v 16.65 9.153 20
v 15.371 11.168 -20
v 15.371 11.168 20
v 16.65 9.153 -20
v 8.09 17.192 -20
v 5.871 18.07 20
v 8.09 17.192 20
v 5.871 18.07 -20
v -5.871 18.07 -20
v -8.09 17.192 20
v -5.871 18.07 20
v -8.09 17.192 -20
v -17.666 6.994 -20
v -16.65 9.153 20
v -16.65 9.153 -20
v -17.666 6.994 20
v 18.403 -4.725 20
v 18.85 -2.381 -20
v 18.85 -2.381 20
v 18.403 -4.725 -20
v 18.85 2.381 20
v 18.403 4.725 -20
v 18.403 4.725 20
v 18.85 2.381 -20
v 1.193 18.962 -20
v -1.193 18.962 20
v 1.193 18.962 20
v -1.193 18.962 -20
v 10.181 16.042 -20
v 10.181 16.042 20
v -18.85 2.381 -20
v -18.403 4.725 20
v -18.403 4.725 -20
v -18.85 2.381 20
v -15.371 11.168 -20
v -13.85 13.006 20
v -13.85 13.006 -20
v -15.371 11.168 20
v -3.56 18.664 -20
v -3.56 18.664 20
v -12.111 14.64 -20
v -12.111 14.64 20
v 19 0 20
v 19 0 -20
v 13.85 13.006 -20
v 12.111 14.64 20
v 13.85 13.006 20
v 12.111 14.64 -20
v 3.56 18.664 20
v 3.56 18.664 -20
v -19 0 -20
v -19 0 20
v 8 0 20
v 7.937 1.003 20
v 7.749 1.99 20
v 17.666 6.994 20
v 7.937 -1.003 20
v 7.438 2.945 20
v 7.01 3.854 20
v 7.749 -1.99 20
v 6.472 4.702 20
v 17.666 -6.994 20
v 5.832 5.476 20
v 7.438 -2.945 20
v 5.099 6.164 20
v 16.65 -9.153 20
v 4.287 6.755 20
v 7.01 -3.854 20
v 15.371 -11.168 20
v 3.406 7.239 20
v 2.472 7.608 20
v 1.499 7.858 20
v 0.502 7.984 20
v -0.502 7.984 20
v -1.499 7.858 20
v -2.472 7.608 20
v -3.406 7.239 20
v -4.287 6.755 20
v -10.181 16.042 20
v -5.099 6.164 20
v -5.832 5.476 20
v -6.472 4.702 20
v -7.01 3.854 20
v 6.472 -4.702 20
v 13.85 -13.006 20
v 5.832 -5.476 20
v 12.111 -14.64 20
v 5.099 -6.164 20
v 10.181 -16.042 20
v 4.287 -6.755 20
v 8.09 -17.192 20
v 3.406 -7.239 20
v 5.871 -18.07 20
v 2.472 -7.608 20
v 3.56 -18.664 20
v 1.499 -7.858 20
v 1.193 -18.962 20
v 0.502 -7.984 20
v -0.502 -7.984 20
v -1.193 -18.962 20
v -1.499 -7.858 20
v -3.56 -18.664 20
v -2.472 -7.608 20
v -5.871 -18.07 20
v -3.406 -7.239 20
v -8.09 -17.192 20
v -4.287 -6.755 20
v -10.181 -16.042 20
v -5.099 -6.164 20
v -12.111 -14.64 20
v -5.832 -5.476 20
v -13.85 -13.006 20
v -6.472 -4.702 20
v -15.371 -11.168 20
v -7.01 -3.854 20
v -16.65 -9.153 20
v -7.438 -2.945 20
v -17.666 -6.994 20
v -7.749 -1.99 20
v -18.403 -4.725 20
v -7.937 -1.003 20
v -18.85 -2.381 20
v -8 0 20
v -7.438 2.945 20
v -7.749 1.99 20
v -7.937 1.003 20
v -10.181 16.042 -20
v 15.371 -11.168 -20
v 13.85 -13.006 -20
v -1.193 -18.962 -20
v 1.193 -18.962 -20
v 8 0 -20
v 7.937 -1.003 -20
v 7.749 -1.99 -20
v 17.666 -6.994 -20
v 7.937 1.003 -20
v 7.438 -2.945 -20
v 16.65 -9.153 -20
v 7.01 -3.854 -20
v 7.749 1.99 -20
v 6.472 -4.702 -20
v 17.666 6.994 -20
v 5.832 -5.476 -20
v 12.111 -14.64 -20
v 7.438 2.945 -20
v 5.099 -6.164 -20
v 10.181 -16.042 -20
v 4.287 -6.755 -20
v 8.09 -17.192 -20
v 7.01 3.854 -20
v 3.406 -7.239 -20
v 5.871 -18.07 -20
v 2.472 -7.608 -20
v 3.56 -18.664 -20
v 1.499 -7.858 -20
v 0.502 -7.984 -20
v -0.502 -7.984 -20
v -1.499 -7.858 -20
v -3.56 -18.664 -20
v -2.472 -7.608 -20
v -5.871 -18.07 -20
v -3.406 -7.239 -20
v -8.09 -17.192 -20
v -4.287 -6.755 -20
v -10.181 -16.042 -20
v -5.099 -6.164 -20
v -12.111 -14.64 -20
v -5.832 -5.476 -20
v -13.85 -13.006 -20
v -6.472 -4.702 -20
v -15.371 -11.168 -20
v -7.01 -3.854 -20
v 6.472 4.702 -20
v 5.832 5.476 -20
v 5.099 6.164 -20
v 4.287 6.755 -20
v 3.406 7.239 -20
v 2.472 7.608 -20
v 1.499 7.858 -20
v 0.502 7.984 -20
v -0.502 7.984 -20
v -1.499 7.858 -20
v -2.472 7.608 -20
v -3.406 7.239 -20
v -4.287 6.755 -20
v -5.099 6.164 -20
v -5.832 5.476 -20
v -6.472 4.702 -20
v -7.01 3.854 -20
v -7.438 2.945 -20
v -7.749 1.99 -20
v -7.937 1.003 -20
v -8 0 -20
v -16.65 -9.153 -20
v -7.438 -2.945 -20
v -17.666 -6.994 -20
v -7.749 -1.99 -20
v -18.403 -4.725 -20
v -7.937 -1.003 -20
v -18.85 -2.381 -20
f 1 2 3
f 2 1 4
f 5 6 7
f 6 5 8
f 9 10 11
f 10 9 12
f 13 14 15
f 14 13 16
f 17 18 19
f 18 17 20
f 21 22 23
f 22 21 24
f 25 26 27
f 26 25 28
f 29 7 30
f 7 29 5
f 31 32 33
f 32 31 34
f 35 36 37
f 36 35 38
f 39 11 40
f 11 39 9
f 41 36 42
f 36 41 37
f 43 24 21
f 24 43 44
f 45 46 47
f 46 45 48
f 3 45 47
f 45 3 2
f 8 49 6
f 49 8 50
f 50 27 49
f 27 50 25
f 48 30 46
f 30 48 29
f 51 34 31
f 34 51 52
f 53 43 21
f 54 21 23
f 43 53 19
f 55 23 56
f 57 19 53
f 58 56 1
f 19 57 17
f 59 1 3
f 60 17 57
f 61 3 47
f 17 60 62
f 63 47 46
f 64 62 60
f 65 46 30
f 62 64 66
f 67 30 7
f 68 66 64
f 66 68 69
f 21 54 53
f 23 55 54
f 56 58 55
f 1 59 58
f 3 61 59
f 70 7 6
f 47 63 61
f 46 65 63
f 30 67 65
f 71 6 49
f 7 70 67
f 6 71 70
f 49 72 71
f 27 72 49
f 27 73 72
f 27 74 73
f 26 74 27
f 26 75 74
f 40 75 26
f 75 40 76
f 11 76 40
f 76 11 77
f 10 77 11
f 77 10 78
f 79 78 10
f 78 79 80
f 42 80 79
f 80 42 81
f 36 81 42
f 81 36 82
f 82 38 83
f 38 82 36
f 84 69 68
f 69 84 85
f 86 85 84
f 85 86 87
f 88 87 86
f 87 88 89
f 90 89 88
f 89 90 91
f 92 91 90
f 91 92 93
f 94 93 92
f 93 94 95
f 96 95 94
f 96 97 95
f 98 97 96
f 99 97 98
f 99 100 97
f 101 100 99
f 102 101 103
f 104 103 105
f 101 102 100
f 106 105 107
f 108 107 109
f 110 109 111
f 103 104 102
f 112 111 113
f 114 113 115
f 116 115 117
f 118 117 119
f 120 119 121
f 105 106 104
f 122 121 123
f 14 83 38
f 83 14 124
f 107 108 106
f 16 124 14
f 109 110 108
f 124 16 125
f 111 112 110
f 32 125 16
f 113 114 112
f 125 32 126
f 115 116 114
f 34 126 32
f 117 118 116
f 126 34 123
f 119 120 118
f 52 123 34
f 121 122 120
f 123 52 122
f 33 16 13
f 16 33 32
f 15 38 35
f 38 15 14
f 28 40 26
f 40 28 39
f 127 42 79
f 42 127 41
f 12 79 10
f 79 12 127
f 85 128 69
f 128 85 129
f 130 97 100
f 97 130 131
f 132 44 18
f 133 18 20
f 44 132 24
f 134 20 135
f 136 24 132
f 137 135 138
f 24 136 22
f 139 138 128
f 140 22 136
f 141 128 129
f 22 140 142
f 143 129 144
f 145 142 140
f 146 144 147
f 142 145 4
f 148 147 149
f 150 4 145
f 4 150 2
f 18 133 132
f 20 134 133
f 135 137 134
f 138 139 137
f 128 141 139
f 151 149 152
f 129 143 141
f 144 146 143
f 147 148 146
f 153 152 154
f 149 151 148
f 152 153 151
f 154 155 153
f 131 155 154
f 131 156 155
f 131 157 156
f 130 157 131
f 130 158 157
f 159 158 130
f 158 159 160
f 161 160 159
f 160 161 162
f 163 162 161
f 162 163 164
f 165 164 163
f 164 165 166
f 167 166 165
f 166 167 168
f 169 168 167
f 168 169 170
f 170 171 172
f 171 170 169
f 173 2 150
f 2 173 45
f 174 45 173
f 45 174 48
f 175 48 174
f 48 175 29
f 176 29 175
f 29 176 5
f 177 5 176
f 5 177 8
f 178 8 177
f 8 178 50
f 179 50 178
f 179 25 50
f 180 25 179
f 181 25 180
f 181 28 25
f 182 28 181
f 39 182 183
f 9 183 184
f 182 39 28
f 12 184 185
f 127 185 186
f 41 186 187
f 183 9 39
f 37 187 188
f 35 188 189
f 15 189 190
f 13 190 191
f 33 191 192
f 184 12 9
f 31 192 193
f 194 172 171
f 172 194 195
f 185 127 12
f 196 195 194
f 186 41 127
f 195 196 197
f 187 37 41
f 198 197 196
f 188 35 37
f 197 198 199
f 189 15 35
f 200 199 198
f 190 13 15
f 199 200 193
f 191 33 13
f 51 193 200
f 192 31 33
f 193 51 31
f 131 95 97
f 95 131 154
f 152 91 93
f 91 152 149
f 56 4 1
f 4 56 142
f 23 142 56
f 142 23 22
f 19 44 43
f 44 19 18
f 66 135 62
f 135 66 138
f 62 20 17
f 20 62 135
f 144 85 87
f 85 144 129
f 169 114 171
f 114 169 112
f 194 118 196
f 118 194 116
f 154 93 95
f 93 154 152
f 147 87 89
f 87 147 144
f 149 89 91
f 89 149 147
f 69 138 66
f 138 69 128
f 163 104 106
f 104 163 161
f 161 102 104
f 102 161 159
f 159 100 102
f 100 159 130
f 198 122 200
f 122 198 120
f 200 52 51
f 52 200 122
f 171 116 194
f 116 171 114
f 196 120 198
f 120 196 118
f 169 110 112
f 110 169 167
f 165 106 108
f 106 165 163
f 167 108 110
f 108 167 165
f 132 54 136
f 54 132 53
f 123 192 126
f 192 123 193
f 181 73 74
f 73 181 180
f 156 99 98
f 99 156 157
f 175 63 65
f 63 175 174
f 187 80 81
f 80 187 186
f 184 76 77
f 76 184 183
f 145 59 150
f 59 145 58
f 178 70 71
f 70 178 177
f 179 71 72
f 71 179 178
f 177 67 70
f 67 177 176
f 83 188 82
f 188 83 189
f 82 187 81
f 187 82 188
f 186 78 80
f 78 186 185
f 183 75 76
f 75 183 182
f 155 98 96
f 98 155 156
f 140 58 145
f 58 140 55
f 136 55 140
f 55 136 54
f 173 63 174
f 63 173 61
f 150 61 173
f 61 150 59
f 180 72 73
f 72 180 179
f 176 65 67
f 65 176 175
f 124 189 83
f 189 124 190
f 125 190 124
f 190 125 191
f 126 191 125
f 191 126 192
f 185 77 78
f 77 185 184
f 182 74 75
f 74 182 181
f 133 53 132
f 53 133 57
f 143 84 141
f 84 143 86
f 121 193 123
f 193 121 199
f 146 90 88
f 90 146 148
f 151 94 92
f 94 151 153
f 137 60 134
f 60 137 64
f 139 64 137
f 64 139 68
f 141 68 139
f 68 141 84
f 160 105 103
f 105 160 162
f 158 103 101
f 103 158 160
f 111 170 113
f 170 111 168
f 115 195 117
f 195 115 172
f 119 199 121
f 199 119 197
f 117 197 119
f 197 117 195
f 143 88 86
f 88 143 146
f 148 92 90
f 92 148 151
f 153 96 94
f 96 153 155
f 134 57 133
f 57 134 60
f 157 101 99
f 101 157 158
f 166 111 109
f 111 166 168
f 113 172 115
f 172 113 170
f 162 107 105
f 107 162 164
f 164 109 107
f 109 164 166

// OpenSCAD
$fn = 50;


difference() {
	union() {
		translate(v = [0, 0, -20.0000000000]) {
			cylinder(h = 40, r = 19.0000000000);
		}
	}
	union() {
		translate(v = [0, 0, -100.0000000000]) {
			cylinder(h = 200, r = 8);
		}
	}
}
